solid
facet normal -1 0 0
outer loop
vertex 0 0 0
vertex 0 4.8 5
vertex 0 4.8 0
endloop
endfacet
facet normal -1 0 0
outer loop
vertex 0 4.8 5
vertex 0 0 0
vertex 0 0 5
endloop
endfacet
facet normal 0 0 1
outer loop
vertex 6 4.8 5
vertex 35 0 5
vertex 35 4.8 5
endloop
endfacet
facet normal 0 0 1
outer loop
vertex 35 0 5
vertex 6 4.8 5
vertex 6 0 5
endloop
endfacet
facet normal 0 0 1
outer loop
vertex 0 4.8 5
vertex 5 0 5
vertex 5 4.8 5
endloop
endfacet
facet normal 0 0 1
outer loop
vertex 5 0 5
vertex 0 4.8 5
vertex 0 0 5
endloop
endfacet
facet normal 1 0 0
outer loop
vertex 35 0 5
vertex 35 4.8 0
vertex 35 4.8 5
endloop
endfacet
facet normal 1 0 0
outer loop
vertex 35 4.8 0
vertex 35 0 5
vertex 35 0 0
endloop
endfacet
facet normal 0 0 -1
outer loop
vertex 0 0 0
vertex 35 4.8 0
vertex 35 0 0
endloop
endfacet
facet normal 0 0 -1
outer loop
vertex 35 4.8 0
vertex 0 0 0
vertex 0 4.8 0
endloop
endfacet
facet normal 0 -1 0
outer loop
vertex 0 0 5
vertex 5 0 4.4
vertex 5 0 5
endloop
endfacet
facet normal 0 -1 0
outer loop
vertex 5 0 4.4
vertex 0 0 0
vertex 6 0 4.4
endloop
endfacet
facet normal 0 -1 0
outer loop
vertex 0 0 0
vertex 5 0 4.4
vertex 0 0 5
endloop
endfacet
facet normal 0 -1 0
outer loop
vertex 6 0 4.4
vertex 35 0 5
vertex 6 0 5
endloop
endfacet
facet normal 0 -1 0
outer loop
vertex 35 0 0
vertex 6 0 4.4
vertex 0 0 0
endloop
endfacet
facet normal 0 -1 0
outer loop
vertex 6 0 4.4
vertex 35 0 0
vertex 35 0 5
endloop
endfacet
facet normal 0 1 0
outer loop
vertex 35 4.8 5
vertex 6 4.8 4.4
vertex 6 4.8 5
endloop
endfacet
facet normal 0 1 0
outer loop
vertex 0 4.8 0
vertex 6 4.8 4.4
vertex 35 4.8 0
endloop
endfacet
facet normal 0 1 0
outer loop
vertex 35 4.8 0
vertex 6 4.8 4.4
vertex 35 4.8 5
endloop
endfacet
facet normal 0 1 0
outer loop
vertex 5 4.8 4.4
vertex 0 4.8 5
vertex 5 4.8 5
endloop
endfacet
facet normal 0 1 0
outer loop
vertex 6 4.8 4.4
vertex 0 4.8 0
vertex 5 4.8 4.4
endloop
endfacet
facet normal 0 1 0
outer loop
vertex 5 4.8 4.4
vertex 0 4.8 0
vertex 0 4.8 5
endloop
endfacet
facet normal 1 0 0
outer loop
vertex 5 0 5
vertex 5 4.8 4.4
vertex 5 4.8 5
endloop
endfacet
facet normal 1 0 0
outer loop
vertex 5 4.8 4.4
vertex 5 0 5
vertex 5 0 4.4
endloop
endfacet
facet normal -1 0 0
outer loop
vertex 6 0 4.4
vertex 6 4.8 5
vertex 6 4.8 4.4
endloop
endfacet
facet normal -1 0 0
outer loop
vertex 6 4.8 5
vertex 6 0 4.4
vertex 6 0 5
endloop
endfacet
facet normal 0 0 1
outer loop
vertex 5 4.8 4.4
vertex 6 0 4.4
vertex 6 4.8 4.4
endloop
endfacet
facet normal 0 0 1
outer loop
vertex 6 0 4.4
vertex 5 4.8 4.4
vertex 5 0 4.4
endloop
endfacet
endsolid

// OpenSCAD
//cube magnet test

difference() {
    cube([35, 4.8, 5.0]);
    translate([5, -1, 4.4]) cube([1, 7, 3]);
}
